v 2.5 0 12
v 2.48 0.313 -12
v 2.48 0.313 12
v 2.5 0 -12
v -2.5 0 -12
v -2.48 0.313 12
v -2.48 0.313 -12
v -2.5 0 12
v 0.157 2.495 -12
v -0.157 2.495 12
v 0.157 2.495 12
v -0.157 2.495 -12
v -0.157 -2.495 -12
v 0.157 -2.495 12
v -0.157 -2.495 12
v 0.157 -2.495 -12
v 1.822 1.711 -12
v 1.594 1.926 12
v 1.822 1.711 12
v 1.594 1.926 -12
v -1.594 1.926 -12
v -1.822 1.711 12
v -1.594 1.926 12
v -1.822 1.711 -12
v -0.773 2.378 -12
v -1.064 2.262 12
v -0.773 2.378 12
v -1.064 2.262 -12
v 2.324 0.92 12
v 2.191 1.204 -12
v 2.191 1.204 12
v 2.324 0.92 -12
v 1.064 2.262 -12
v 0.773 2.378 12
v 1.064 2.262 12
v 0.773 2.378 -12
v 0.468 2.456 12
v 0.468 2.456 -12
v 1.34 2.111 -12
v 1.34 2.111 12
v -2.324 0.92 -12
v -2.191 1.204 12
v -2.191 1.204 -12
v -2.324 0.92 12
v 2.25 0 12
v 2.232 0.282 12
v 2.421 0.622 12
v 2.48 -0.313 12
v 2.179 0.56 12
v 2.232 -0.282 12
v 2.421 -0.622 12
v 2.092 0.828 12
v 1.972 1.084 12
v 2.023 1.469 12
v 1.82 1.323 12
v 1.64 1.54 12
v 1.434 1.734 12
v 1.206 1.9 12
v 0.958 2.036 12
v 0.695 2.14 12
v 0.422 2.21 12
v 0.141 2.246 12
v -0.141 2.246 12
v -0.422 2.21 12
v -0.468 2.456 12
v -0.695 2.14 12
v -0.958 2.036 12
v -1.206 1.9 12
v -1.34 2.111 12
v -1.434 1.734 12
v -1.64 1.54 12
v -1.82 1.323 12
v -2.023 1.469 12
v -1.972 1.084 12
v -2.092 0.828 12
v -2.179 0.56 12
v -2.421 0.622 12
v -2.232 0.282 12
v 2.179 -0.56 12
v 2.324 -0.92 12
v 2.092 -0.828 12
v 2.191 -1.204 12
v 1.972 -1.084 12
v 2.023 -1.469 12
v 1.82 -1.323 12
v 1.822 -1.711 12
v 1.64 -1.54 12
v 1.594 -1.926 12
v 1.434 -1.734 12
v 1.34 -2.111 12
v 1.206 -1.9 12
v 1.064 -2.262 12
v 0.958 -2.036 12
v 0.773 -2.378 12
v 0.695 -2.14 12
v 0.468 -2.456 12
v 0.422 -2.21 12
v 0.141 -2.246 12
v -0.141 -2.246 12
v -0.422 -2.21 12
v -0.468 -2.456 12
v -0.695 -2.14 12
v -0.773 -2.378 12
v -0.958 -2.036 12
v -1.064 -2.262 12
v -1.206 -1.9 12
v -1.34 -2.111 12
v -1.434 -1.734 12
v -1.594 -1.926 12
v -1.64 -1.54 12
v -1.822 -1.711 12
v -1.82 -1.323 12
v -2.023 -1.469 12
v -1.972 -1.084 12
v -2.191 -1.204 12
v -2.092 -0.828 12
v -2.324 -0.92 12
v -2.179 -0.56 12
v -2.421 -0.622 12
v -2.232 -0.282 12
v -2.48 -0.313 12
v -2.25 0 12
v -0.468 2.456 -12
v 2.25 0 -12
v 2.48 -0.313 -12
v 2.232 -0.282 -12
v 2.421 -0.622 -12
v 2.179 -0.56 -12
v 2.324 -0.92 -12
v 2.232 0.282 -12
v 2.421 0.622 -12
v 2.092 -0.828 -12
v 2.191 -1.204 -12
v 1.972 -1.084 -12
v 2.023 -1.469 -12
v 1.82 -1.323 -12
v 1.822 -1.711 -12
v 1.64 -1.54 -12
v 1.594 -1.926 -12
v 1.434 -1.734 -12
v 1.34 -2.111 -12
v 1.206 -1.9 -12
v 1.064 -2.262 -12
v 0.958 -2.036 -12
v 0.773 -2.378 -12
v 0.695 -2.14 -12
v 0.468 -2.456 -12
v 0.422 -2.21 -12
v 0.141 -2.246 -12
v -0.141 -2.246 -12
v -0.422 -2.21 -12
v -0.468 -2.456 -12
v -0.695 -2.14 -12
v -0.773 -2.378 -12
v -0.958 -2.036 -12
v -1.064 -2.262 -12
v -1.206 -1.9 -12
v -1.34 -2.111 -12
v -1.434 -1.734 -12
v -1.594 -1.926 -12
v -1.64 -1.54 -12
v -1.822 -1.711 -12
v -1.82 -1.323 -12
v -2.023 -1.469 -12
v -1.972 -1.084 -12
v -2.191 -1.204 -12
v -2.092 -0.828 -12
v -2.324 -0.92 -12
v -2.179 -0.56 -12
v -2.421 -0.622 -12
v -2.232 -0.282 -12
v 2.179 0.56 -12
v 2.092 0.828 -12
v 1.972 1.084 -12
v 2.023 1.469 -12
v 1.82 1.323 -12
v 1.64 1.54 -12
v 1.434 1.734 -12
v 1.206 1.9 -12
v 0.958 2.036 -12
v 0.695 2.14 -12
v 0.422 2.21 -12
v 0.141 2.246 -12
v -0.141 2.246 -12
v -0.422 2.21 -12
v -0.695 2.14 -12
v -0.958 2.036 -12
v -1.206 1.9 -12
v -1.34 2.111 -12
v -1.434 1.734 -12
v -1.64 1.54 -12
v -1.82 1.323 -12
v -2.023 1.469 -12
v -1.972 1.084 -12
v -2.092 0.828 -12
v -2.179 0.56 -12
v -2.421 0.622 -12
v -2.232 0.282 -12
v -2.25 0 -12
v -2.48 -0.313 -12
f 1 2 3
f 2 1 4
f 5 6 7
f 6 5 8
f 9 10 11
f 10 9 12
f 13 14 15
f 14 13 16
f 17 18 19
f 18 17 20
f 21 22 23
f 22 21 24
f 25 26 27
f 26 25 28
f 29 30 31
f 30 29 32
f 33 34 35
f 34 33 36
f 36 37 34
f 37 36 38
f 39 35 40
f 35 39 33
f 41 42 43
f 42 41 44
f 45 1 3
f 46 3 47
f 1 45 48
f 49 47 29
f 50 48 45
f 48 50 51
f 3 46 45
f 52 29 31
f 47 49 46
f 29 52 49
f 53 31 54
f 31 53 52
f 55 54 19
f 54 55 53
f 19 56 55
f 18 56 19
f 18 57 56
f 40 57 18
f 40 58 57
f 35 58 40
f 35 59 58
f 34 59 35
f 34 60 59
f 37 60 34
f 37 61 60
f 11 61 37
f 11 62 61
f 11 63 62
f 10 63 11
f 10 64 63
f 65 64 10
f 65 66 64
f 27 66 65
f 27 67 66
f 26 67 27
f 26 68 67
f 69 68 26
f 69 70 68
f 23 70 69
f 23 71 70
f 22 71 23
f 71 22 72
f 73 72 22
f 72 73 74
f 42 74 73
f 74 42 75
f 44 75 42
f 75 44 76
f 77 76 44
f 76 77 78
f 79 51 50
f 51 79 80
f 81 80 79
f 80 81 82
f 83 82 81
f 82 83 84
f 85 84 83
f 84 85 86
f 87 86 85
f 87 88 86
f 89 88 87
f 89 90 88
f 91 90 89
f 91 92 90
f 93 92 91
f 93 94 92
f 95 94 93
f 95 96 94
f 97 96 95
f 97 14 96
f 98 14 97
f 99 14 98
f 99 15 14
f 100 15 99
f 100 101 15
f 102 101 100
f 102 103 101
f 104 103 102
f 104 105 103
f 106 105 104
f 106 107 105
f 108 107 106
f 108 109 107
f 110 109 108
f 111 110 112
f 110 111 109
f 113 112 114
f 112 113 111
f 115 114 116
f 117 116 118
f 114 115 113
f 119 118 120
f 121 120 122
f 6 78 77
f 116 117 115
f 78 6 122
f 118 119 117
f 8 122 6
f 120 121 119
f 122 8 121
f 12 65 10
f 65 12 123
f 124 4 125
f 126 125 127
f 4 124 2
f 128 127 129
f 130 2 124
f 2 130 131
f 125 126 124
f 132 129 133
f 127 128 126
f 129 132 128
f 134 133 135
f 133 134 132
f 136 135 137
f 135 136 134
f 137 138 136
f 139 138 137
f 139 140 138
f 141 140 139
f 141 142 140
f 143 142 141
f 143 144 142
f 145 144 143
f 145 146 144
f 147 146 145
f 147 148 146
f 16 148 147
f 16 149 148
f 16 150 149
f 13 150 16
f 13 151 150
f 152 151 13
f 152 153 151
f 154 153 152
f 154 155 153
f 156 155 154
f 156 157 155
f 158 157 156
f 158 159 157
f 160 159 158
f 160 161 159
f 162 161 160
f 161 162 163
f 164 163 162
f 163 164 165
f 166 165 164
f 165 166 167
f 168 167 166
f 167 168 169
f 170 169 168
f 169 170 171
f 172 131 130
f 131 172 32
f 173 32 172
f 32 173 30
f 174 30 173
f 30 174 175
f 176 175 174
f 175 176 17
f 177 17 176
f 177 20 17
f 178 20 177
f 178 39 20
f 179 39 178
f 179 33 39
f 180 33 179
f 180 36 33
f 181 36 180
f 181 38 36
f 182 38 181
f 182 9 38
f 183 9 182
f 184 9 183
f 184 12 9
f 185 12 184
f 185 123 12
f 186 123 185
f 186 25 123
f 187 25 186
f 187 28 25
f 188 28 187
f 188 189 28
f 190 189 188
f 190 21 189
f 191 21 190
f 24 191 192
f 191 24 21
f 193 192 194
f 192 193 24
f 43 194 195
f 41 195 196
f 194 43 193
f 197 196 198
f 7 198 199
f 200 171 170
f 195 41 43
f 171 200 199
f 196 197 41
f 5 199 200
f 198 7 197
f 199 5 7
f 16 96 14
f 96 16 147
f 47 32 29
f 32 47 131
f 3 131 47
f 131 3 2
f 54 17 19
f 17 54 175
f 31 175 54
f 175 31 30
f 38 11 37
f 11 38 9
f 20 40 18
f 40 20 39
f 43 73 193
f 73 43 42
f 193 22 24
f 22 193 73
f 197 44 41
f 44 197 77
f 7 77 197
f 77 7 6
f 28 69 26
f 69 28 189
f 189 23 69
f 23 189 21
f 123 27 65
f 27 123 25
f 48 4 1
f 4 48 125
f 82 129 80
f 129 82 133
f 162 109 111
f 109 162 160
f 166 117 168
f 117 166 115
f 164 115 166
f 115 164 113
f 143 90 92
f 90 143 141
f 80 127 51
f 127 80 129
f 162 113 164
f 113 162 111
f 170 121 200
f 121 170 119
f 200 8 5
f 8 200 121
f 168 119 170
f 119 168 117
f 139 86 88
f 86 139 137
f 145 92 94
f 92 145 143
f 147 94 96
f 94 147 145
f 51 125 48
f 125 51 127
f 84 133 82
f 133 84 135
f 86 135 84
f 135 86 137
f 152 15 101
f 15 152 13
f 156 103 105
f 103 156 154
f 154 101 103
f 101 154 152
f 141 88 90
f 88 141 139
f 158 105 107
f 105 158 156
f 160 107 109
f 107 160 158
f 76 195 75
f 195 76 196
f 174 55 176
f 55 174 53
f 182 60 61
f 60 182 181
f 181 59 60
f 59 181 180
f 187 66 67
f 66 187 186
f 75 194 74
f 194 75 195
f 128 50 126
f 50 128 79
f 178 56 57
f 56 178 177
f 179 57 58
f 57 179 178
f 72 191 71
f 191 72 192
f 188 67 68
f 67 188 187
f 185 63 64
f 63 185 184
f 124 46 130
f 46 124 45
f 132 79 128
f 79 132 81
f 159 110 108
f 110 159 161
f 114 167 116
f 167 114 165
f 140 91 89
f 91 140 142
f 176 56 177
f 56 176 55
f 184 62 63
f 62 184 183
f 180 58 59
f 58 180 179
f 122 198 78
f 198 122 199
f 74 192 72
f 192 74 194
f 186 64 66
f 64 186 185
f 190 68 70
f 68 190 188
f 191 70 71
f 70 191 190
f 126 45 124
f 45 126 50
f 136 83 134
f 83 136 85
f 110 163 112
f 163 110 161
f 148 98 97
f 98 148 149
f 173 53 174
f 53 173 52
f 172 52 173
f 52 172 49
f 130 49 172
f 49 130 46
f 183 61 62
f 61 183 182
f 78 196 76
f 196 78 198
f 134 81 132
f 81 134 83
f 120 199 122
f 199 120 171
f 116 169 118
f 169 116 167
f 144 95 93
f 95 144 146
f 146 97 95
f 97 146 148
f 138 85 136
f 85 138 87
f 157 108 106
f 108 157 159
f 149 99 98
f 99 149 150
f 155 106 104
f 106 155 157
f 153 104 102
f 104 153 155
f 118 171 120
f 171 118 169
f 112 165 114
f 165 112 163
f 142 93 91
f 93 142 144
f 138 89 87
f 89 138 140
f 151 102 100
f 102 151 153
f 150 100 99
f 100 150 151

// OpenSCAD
$fn = 50;


difference() {
	union() {
		translate(v = [0, 0, -12.0000000000]) {
			cylinder(h = 24, r = 2.5000000000);
		}
	}
	union() {
		translate(v = [0, 0, -100.0000000000]) {
			cylinder(h = 200, r = 2.2500000000);
		}
	}
}
